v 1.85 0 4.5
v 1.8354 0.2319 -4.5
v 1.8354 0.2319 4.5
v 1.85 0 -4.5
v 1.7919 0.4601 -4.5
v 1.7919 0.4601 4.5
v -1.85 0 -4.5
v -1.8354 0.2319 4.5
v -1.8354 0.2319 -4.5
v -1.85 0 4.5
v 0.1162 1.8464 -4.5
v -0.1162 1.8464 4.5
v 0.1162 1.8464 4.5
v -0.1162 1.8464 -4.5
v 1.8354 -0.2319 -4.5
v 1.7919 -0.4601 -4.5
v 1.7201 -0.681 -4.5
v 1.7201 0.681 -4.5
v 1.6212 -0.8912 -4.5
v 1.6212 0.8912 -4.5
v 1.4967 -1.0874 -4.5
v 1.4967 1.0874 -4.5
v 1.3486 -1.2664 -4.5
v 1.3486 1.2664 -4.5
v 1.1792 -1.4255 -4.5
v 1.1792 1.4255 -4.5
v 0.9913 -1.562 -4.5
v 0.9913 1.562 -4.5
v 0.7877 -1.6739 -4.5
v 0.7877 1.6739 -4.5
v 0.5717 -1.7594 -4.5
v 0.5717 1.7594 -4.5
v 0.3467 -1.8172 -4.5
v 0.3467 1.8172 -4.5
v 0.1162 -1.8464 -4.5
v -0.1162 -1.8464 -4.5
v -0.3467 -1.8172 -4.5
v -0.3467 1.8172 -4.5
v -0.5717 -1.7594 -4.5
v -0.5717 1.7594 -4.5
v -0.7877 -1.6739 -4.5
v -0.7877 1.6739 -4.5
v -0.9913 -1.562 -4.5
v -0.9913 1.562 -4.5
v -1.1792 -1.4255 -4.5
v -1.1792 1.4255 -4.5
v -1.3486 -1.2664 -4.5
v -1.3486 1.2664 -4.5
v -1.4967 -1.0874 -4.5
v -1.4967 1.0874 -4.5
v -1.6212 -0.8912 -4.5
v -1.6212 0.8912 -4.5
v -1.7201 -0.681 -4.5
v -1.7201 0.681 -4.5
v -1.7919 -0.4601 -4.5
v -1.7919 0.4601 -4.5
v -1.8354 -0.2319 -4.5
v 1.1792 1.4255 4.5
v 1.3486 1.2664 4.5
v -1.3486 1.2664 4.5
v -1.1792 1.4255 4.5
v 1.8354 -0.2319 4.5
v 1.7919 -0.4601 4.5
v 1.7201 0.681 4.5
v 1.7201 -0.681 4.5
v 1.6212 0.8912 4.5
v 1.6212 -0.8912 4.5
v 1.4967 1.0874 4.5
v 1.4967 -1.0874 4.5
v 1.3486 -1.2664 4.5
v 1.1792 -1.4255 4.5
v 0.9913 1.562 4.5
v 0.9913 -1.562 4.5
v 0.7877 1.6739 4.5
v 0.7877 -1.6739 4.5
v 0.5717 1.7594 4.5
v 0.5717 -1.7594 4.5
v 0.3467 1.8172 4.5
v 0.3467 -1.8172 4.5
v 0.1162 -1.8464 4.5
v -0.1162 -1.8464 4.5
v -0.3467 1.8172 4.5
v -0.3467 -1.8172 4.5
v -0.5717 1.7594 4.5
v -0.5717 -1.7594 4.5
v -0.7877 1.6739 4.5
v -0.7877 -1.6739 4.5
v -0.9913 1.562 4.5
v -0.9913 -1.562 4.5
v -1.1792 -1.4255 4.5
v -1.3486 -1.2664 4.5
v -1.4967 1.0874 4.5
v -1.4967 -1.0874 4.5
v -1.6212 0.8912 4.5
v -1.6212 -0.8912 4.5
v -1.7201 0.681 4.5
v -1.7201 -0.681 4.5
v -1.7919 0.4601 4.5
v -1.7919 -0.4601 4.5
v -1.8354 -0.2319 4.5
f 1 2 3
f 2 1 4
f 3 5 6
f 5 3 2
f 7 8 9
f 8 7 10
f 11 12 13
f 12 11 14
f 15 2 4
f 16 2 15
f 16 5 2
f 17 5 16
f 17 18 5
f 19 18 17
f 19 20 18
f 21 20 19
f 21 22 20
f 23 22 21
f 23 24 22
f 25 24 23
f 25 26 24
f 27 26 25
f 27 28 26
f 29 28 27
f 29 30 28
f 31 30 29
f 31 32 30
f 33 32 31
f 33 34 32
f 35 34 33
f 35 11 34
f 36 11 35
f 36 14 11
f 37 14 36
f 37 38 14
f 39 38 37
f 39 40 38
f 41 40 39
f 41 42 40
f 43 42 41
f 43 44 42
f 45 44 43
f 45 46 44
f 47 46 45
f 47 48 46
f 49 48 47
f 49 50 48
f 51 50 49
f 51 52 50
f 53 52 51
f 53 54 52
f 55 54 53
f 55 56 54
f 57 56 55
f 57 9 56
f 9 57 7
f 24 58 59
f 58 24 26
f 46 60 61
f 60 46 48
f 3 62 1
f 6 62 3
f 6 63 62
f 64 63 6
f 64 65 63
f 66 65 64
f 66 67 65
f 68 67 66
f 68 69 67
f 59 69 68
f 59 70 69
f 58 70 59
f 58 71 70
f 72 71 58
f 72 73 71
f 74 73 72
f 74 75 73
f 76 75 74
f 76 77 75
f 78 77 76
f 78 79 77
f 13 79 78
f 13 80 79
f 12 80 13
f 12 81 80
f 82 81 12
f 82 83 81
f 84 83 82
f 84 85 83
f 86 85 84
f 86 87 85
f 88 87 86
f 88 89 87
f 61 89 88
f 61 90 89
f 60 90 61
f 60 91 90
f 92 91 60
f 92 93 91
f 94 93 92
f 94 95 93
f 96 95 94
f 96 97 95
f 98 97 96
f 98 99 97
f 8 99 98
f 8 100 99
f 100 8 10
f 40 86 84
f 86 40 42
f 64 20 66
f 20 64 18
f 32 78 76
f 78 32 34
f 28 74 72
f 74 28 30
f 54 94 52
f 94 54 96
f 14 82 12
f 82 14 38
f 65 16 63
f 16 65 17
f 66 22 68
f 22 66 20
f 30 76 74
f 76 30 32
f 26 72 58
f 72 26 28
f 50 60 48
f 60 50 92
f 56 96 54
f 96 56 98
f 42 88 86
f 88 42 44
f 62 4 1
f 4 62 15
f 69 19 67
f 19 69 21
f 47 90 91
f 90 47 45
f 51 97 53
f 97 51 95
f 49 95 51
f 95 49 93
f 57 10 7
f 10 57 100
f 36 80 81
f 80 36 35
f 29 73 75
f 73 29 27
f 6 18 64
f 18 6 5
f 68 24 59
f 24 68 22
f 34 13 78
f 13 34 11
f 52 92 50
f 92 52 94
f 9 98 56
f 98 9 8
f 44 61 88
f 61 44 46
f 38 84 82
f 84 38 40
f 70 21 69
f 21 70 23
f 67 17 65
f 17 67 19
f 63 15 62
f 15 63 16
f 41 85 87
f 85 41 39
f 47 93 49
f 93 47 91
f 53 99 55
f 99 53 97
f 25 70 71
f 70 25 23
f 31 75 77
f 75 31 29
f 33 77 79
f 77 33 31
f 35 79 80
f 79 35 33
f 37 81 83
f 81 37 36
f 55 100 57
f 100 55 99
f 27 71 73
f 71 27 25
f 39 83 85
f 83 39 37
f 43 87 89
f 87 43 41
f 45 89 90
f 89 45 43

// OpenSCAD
$fn = 50;


difference() {
	union() {
		translate(v = [0, 0, -4.5000000000]) {
			cylinder(h = 9, r = 1.8500000000);
		}
	}
	union() {
		translate(v = [0, 0, -100.0000000000]) {
			cylinder(h = 200, r = 0);
		}
	}
}
